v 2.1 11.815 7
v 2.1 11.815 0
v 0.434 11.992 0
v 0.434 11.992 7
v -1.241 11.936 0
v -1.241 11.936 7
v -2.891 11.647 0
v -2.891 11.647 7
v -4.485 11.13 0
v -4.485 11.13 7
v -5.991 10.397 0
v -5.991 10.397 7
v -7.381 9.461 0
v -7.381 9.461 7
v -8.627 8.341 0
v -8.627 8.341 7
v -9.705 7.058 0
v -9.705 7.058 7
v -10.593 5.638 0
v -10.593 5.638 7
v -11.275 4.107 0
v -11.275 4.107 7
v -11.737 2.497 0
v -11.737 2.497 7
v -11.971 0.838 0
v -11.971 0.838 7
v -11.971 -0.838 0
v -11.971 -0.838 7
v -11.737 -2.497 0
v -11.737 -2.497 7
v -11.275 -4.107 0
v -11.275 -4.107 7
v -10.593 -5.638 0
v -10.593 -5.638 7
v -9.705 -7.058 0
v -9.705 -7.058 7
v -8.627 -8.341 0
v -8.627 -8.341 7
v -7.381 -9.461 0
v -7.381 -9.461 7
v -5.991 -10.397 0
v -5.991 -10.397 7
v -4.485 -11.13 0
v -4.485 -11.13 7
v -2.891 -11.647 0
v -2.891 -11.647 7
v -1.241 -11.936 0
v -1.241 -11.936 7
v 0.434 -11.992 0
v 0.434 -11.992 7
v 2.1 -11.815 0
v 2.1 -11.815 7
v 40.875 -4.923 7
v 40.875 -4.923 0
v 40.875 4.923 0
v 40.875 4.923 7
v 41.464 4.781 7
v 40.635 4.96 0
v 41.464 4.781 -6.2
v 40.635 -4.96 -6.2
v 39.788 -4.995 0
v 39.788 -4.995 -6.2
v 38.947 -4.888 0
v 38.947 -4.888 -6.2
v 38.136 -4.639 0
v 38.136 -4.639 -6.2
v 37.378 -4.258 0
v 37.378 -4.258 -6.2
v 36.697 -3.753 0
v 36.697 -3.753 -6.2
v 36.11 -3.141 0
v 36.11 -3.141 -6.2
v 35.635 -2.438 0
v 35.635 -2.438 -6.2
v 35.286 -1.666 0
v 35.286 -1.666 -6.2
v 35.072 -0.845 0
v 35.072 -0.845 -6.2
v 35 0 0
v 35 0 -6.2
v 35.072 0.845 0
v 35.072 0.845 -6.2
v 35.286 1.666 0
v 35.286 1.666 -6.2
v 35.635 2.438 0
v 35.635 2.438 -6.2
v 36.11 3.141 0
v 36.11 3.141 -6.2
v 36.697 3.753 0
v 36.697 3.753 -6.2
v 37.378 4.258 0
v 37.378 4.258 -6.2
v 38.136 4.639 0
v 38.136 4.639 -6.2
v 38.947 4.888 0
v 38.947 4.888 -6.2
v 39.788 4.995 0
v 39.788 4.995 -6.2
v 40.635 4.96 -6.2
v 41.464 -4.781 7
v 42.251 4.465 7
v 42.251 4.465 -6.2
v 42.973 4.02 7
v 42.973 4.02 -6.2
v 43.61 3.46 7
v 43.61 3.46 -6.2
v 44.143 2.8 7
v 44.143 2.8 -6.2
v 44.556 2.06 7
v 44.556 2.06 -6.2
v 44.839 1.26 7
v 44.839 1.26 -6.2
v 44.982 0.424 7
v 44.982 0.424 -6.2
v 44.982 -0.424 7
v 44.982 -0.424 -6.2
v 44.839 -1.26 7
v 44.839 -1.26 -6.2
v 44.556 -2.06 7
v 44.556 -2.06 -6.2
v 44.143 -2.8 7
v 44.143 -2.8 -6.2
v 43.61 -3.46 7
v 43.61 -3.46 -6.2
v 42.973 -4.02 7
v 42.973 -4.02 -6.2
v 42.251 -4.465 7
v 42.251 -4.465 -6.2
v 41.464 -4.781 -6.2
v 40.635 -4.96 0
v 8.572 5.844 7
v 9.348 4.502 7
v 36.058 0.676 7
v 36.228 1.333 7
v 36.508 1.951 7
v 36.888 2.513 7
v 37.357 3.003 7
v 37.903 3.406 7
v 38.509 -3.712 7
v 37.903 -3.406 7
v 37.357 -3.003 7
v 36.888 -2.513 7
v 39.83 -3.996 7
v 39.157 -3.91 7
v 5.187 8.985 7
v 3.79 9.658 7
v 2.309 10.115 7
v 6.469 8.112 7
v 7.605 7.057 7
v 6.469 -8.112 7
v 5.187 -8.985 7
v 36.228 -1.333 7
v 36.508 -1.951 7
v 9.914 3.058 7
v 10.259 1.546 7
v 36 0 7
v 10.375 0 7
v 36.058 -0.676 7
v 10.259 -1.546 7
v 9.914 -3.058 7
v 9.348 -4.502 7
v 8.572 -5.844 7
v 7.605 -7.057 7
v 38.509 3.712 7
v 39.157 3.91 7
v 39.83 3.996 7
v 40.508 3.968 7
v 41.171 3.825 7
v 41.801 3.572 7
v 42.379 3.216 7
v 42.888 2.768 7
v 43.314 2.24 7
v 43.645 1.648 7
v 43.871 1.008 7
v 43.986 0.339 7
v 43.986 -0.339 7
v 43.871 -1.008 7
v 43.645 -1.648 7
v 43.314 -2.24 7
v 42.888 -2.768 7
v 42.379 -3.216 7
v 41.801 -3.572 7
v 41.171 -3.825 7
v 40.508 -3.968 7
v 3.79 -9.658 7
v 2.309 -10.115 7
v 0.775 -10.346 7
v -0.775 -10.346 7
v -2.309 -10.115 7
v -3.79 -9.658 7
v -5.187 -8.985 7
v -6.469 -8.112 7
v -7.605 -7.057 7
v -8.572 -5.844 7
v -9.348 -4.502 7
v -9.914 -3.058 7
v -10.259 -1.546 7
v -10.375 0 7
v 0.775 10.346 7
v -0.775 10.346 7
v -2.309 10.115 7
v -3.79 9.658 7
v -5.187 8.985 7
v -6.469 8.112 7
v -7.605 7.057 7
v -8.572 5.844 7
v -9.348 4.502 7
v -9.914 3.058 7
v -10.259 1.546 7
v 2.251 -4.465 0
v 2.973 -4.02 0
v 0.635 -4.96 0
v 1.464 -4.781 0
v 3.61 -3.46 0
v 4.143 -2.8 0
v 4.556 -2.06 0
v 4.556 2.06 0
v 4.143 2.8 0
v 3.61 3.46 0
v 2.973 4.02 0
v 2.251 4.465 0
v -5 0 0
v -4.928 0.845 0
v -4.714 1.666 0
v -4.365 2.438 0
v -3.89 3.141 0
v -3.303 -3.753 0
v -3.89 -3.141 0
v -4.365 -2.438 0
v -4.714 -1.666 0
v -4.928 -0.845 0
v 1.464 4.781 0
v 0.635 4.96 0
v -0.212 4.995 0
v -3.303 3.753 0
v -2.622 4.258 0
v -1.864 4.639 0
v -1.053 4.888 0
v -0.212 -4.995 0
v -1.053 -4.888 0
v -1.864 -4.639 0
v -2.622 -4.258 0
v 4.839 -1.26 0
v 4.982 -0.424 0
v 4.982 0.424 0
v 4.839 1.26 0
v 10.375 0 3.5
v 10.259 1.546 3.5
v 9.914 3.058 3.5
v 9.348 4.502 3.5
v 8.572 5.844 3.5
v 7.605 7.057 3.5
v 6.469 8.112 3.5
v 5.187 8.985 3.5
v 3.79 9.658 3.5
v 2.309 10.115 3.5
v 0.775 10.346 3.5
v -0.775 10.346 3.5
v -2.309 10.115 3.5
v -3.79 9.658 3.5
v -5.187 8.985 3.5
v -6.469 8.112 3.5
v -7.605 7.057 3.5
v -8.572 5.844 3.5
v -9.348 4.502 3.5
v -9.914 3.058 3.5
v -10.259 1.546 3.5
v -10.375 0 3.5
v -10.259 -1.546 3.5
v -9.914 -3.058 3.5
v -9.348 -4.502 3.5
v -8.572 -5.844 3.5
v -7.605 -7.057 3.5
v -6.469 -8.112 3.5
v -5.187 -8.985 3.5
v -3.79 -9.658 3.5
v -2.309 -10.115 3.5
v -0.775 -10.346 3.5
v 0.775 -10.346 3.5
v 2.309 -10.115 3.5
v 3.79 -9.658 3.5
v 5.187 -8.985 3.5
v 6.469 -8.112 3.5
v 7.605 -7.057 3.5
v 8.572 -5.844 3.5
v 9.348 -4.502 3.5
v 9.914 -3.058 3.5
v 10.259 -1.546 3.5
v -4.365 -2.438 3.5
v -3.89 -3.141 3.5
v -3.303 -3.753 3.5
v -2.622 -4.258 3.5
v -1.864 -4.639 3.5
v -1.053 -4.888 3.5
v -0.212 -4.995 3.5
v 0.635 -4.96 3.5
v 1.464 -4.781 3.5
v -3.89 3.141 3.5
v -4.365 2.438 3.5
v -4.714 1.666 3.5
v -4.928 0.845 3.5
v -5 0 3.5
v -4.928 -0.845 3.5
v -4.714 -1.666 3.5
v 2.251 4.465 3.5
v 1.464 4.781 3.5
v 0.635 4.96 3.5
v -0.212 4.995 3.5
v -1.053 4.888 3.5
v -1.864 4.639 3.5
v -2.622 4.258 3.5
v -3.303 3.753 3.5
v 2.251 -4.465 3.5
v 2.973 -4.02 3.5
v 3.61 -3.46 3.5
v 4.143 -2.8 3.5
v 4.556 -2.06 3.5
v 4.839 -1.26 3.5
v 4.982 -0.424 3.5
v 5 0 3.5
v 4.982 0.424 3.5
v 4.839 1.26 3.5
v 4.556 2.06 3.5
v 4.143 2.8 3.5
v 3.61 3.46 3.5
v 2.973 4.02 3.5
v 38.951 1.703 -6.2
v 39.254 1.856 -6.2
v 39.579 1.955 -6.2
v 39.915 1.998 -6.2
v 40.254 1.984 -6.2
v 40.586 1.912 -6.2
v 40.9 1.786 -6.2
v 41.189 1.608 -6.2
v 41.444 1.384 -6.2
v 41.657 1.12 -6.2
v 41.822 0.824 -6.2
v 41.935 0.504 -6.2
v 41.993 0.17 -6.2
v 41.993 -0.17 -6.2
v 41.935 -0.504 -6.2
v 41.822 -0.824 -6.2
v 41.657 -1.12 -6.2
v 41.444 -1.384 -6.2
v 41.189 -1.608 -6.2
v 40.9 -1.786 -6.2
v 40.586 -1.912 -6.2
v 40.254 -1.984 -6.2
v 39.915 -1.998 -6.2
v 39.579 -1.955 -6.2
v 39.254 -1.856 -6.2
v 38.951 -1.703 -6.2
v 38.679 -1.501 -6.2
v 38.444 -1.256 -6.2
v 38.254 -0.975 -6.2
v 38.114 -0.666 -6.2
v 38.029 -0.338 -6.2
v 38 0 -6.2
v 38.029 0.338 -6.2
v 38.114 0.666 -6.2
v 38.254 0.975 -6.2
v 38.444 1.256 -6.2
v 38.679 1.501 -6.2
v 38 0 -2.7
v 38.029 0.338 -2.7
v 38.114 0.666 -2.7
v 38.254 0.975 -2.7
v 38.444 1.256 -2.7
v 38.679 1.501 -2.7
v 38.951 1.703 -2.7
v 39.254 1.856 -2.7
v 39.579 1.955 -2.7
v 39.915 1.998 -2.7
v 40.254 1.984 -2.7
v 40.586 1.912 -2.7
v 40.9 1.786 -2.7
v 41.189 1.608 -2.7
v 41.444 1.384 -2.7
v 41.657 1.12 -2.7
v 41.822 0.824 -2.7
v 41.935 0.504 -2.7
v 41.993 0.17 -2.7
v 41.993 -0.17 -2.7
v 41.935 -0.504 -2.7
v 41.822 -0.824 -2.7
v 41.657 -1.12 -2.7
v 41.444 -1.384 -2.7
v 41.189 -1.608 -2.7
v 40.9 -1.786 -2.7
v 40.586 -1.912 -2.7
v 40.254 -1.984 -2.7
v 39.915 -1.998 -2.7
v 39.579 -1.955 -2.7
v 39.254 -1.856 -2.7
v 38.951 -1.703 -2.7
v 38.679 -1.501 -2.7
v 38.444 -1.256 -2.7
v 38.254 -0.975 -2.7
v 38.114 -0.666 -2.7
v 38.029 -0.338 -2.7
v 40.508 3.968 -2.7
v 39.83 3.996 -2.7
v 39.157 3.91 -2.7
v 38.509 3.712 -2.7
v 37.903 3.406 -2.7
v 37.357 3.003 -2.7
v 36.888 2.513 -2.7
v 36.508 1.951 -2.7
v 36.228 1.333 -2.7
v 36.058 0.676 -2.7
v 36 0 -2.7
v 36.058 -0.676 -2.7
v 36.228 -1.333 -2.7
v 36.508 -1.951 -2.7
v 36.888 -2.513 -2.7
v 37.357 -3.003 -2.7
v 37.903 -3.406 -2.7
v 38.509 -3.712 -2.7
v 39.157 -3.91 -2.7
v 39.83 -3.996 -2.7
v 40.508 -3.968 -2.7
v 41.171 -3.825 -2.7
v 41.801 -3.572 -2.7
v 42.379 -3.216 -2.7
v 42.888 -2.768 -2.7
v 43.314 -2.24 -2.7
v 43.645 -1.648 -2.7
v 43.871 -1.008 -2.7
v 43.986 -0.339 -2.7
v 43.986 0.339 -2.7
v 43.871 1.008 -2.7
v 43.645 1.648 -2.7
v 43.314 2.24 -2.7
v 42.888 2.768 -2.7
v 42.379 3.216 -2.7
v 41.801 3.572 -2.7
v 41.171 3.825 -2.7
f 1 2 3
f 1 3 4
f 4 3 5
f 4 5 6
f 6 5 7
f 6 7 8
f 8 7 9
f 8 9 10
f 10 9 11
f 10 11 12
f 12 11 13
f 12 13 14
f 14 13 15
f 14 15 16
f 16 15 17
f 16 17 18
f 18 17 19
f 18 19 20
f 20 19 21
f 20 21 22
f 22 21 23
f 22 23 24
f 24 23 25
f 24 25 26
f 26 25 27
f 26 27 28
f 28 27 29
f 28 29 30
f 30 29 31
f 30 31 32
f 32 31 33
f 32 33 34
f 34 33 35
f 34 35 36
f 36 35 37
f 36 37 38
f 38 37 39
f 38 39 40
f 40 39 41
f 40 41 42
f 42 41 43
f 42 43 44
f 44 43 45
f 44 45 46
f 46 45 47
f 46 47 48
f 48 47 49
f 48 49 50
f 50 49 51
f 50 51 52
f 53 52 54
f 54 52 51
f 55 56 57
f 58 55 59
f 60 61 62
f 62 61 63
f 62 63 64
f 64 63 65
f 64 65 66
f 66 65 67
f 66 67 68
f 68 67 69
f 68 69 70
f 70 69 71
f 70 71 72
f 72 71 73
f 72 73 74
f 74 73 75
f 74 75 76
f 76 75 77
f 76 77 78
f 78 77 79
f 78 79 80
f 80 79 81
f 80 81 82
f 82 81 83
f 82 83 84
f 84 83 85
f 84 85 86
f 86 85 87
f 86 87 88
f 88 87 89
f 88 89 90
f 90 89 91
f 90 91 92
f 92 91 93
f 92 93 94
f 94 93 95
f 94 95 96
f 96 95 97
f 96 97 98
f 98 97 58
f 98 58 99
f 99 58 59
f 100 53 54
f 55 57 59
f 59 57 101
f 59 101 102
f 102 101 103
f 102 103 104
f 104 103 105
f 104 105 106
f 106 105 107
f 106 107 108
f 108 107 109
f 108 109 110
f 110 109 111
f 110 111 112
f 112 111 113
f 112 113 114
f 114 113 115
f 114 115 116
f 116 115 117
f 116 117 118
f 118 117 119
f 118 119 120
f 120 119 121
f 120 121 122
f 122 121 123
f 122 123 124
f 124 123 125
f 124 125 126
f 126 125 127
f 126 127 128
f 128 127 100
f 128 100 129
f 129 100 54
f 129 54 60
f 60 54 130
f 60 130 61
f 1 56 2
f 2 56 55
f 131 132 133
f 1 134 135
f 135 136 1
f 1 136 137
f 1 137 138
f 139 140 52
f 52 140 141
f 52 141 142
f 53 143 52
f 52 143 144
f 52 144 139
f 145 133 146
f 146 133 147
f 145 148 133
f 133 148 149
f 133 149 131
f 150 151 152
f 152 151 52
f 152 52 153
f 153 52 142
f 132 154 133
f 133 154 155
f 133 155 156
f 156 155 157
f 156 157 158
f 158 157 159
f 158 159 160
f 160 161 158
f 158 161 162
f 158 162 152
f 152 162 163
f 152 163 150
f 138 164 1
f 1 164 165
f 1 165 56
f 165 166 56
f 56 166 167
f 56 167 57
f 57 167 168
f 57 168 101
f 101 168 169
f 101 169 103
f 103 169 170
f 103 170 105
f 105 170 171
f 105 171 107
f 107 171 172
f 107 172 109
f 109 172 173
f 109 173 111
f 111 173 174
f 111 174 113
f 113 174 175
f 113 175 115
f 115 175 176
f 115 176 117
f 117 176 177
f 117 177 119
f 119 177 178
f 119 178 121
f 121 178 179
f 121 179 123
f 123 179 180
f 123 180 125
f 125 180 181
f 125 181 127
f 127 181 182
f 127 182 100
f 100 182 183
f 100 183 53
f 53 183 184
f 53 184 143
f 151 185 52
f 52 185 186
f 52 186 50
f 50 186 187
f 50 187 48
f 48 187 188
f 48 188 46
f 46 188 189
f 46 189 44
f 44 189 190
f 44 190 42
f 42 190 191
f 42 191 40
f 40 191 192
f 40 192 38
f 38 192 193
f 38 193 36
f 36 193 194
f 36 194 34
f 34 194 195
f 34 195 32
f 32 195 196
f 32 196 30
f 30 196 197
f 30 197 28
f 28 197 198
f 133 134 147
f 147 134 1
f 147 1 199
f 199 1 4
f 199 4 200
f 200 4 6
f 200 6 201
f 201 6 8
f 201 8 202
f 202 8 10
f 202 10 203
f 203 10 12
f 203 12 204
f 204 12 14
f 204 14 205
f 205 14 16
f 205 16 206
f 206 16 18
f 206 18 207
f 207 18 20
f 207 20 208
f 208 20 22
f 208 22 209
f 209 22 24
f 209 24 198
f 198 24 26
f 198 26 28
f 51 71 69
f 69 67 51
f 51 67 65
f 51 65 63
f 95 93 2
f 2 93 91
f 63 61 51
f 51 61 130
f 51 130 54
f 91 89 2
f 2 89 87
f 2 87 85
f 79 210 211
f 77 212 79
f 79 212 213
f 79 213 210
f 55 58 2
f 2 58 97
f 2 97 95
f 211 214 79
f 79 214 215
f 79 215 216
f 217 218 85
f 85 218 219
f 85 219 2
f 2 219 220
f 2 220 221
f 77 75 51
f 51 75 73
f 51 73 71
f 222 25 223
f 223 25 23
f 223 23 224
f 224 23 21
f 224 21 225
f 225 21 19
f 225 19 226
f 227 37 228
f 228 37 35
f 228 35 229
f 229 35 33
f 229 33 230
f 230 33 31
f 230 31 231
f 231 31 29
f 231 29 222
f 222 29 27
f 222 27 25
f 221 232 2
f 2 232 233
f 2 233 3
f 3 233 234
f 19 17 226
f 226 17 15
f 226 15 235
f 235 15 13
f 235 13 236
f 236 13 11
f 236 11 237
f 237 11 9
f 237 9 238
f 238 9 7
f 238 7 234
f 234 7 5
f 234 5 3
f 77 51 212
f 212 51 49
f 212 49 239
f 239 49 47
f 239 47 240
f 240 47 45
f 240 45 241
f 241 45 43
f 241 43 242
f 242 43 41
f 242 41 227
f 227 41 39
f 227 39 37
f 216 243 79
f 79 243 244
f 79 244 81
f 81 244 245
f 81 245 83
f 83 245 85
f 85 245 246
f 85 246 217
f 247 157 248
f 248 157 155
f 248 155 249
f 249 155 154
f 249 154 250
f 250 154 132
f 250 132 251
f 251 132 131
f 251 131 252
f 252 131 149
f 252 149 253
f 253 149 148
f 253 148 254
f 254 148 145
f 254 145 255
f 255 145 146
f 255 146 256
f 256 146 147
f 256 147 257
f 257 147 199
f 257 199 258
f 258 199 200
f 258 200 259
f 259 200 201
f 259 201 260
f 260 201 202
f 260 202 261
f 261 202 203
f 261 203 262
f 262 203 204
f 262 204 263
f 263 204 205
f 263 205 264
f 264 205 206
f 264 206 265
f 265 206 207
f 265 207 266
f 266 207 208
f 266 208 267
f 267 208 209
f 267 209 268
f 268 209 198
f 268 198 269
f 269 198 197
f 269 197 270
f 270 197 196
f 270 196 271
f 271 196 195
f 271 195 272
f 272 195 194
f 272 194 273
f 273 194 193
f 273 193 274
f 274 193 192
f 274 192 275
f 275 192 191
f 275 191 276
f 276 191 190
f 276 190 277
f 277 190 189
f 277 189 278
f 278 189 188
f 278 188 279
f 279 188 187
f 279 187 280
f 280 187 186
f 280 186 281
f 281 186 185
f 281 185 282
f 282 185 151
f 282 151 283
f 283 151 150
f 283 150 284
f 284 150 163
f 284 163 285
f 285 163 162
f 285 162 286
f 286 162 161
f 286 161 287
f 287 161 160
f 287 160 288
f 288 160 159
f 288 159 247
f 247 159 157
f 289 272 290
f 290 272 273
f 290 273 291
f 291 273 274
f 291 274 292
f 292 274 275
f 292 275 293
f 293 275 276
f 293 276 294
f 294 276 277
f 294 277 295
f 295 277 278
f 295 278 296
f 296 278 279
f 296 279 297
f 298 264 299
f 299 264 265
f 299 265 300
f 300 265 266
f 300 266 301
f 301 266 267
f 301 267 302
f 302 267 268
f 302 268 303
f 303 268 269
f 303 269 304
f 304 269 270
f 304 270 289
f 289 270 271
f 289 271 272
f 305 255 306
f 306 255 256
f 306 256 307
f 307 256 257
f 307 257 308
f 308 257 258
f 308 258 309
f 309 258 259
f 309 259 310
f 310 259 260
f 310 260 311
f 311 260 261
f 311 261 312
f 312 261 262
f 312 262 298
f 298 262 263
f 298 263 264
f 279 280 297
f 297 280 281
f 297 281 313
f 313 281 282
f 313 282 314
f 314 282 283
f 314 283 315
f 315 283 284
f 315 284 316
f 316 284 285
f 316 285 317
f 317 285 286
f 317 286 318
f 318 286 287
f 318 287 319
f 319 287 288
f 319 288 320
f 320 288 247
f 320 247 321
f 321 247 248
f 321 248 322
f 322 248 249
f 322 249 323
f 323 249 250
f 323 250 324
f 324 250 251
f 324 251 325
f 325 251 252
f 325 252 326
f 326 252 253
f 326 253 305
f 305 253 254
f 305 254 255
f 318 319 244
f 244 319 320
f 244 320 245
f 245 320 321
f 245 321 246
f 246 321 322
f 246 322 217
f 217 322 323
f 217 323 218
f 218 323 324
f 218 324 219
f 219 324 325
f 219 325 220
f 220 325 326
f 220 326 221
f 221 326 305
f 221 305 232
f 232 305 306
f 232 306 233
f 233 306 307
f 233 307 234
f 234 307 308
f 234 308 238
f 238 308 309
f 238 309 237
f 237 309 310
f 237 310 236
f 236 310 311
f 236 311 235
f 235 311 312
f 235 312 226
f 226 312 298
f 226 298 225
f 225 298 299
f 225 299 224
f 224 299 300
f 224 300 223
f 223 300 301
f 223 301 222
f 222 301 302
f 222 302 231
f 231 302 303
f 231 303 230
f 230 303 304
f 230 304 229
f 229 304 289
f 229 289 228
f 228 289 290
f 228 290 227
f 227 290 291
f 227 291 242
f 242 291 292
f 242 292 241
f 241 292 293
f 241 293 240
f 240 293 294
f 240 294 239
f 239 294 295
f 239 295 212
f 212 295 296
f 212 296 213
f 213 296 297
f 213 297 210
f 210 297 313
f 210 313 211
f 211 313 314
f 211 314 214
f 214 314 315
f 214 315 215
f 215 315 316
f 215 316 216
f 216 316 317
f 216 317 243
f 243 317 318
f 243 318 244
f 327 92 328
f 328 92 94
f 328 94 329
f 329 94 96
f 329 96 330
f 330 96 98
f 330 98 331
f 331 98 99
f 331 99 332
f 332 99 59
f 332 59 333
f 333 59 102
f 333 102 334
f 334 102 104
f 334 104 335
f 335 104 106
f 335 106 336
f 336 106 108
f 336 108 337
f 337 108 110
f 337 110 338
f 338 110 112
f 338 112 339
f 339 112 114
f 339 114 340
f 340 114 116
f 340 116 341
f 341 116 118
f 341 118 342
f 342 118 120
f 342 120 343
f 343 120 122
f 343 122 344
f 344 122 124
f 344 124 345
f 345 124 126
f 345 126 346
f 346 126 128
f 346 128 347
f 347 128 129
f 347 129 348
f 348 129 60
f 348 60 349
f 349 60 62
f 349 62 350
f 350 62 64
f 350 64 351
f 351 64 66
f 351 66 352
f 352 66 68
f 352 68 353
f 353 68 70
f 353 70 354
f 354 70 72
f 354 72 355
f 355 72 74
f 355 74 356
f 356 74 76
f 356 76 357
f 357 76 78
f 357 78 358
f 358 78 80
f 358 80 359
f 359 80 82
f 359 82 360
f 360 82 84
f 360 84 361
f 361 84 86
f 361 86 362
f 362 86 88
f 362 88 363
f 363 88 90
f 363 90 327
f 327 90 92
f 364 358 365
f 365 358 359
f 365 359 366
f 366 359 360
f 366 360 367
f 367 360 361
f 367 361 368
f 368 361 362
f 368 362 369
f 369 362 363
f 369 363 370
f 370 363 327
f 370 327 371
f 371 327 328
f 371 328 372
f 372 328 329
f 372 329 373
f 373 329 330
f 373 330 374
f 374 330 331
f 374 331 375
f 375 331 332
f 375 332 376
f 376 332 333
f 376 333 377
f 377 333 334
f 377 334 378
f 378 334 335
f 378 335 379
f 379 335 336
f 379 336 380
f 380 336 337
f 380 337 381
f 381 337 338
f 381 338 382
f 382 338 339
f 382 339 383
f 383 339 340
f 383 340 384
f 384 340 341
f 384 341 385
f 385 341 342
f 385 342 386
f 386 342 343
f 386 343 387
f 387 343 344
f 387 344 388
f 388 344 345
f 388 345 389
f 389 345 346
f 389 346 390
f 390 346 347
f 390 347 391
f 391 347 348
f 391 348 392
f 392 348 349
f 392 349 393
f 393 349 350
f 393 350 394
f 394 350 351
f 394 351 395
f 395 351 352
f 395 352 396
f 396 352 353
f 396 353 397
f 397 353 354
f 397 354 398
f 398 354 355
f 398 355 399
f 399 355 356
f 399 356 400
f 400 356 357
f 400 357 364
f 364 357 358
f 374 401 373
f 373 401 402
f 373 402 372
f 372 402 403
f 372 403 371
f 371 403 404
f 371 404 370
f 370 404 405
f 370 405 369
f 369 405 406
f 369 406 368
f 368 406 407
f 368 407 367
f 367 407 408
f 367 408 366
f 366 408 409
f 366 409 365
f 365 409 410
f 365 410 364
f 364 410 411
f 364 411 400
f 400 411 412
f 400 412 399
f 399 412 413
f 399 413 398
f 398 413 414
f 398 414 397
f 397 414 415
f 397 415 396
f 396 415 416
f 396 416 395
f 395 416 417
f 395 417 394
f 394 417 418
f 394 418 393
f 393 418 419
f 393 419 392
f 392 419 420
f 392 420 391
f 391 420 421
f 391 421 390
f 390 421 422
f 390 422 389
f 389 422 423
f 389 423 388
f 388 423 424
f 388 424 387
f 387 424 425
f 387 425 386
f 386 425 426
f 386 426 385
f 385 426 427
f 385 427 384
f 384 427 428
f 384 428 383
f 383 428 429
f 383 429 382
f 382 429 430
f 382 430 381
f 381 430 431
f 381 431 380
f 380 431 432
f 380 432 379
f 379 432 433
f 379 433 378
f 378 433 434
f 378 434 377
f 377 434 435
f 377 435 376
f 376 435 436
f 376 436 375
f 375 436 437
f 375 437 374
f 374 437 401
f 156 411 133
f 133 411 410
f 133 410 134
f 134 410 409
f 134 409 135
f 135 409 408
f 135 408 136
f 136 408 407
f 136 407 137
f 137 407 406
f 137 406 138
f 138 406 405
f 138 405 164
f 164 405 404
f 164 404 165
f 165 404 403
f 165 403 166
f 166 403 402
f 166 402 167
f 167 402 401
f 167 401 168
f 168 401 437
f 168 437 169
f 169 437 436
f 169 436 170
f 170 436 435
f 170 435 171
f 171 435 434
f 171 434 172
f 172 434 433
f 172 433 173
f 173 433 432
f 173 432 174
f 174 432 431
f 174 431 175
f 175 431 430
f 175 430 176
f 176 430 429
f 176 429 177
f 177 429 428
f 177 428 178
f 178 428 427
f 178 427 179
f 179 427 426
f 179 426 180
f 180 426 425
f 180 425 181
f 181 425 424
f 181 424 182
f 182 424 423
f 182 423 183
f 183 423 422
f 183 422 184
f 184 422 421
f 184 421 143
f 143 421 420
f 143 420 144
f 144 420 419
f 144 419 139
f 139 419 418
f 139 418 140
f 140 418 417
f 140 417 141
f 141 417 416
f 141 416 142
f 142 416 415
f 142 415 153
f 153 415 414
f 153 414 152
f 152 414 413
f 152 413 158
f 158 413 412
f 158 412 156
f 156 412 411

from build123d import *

# Parameters (mm, degrees)
EXTRUDE_1_DEPTH     = 7
SKETCH_2_R          = 10.375
CUT_EXTRUDE_1_DEPTH = 3.5
SKETCH_6_R          = 5
CUT_EXTRUDE_2_DEPTH = 48.095647357
EXTRUDE_START       = 6.2
SKETCH_8_R          = 5
EXTRUDE_2_DEPTH     = 6.2


with BuildPart() as part:
    # 草图1 → 凸台-拉伸1 (new body)
    with BuildSketch(Plane.XY):
        with BuildLine():
            Line((2.1, 11.814821201), (40.875, 4.922842167))
            ThreePointArc((40.875, 4.922842167), (45, 0), (40.875, -4.922842167))
            Line((40.875, -4.922842167), (2.1, -11.814821201))
            ThreePointArc((2.1, -11.814821201), (-12, 0), (2.1, 11.814821201))
        make_face()
    extrude(amount=EXTRUDE_1_DEPTH)

    # 草图2 → 切除-拉伸1 (cut)
    with BuildSketch(Plane.XY.offset(7)):
        Circle(SKETCH_2_R)
    extrude(amount=-CUT_EXTRUDE_1_DEPTH, mode=Mode.SUBTRACT)

    # 草图6 → 切除-拉伸2 (cut, through all)
    with BuildSketch(Plane(origin=(0, 0, 0), x_dir=(-1, 0, 0), z_dir=(0, 0, -1))):
        Circle(SKETCH_6_R)
    extrude(amount=-CUT_EXTRUDE_2_DEPTH, mode=Mode.SUBTRACT)

    # 草图8 → 凸台-拉伸2 (add)
    with BuildSketch(Plane(origin=(0, 0, 0), x_dir=(-1, 0, 0), z_dir=(0, 0, -1)).offset(EXTRUDE_START)):
        with Locations((-40, 0)):
            Circle(SKETCH_8_R)
    extrude(amount=-EXTRUDE_2_DEPTH)

    # 草图9 → 切除-旋转1 (revolve, cut)
    with BuildSketch(Plane(origin=(0, 0, 0), x_dir=(1, 0, 0), z_dir=(0, 1, 0))):
        Polygon((40, 6.2), (38, 6.2), (38, 2.7), (36, 2.7), (36, -7), (40, -7), align=None)
    revolve(axis=Axis((40, 0, -14.45), (0, 0, 1)), mode=Mode.SUBTRACT)


solid = part.part
